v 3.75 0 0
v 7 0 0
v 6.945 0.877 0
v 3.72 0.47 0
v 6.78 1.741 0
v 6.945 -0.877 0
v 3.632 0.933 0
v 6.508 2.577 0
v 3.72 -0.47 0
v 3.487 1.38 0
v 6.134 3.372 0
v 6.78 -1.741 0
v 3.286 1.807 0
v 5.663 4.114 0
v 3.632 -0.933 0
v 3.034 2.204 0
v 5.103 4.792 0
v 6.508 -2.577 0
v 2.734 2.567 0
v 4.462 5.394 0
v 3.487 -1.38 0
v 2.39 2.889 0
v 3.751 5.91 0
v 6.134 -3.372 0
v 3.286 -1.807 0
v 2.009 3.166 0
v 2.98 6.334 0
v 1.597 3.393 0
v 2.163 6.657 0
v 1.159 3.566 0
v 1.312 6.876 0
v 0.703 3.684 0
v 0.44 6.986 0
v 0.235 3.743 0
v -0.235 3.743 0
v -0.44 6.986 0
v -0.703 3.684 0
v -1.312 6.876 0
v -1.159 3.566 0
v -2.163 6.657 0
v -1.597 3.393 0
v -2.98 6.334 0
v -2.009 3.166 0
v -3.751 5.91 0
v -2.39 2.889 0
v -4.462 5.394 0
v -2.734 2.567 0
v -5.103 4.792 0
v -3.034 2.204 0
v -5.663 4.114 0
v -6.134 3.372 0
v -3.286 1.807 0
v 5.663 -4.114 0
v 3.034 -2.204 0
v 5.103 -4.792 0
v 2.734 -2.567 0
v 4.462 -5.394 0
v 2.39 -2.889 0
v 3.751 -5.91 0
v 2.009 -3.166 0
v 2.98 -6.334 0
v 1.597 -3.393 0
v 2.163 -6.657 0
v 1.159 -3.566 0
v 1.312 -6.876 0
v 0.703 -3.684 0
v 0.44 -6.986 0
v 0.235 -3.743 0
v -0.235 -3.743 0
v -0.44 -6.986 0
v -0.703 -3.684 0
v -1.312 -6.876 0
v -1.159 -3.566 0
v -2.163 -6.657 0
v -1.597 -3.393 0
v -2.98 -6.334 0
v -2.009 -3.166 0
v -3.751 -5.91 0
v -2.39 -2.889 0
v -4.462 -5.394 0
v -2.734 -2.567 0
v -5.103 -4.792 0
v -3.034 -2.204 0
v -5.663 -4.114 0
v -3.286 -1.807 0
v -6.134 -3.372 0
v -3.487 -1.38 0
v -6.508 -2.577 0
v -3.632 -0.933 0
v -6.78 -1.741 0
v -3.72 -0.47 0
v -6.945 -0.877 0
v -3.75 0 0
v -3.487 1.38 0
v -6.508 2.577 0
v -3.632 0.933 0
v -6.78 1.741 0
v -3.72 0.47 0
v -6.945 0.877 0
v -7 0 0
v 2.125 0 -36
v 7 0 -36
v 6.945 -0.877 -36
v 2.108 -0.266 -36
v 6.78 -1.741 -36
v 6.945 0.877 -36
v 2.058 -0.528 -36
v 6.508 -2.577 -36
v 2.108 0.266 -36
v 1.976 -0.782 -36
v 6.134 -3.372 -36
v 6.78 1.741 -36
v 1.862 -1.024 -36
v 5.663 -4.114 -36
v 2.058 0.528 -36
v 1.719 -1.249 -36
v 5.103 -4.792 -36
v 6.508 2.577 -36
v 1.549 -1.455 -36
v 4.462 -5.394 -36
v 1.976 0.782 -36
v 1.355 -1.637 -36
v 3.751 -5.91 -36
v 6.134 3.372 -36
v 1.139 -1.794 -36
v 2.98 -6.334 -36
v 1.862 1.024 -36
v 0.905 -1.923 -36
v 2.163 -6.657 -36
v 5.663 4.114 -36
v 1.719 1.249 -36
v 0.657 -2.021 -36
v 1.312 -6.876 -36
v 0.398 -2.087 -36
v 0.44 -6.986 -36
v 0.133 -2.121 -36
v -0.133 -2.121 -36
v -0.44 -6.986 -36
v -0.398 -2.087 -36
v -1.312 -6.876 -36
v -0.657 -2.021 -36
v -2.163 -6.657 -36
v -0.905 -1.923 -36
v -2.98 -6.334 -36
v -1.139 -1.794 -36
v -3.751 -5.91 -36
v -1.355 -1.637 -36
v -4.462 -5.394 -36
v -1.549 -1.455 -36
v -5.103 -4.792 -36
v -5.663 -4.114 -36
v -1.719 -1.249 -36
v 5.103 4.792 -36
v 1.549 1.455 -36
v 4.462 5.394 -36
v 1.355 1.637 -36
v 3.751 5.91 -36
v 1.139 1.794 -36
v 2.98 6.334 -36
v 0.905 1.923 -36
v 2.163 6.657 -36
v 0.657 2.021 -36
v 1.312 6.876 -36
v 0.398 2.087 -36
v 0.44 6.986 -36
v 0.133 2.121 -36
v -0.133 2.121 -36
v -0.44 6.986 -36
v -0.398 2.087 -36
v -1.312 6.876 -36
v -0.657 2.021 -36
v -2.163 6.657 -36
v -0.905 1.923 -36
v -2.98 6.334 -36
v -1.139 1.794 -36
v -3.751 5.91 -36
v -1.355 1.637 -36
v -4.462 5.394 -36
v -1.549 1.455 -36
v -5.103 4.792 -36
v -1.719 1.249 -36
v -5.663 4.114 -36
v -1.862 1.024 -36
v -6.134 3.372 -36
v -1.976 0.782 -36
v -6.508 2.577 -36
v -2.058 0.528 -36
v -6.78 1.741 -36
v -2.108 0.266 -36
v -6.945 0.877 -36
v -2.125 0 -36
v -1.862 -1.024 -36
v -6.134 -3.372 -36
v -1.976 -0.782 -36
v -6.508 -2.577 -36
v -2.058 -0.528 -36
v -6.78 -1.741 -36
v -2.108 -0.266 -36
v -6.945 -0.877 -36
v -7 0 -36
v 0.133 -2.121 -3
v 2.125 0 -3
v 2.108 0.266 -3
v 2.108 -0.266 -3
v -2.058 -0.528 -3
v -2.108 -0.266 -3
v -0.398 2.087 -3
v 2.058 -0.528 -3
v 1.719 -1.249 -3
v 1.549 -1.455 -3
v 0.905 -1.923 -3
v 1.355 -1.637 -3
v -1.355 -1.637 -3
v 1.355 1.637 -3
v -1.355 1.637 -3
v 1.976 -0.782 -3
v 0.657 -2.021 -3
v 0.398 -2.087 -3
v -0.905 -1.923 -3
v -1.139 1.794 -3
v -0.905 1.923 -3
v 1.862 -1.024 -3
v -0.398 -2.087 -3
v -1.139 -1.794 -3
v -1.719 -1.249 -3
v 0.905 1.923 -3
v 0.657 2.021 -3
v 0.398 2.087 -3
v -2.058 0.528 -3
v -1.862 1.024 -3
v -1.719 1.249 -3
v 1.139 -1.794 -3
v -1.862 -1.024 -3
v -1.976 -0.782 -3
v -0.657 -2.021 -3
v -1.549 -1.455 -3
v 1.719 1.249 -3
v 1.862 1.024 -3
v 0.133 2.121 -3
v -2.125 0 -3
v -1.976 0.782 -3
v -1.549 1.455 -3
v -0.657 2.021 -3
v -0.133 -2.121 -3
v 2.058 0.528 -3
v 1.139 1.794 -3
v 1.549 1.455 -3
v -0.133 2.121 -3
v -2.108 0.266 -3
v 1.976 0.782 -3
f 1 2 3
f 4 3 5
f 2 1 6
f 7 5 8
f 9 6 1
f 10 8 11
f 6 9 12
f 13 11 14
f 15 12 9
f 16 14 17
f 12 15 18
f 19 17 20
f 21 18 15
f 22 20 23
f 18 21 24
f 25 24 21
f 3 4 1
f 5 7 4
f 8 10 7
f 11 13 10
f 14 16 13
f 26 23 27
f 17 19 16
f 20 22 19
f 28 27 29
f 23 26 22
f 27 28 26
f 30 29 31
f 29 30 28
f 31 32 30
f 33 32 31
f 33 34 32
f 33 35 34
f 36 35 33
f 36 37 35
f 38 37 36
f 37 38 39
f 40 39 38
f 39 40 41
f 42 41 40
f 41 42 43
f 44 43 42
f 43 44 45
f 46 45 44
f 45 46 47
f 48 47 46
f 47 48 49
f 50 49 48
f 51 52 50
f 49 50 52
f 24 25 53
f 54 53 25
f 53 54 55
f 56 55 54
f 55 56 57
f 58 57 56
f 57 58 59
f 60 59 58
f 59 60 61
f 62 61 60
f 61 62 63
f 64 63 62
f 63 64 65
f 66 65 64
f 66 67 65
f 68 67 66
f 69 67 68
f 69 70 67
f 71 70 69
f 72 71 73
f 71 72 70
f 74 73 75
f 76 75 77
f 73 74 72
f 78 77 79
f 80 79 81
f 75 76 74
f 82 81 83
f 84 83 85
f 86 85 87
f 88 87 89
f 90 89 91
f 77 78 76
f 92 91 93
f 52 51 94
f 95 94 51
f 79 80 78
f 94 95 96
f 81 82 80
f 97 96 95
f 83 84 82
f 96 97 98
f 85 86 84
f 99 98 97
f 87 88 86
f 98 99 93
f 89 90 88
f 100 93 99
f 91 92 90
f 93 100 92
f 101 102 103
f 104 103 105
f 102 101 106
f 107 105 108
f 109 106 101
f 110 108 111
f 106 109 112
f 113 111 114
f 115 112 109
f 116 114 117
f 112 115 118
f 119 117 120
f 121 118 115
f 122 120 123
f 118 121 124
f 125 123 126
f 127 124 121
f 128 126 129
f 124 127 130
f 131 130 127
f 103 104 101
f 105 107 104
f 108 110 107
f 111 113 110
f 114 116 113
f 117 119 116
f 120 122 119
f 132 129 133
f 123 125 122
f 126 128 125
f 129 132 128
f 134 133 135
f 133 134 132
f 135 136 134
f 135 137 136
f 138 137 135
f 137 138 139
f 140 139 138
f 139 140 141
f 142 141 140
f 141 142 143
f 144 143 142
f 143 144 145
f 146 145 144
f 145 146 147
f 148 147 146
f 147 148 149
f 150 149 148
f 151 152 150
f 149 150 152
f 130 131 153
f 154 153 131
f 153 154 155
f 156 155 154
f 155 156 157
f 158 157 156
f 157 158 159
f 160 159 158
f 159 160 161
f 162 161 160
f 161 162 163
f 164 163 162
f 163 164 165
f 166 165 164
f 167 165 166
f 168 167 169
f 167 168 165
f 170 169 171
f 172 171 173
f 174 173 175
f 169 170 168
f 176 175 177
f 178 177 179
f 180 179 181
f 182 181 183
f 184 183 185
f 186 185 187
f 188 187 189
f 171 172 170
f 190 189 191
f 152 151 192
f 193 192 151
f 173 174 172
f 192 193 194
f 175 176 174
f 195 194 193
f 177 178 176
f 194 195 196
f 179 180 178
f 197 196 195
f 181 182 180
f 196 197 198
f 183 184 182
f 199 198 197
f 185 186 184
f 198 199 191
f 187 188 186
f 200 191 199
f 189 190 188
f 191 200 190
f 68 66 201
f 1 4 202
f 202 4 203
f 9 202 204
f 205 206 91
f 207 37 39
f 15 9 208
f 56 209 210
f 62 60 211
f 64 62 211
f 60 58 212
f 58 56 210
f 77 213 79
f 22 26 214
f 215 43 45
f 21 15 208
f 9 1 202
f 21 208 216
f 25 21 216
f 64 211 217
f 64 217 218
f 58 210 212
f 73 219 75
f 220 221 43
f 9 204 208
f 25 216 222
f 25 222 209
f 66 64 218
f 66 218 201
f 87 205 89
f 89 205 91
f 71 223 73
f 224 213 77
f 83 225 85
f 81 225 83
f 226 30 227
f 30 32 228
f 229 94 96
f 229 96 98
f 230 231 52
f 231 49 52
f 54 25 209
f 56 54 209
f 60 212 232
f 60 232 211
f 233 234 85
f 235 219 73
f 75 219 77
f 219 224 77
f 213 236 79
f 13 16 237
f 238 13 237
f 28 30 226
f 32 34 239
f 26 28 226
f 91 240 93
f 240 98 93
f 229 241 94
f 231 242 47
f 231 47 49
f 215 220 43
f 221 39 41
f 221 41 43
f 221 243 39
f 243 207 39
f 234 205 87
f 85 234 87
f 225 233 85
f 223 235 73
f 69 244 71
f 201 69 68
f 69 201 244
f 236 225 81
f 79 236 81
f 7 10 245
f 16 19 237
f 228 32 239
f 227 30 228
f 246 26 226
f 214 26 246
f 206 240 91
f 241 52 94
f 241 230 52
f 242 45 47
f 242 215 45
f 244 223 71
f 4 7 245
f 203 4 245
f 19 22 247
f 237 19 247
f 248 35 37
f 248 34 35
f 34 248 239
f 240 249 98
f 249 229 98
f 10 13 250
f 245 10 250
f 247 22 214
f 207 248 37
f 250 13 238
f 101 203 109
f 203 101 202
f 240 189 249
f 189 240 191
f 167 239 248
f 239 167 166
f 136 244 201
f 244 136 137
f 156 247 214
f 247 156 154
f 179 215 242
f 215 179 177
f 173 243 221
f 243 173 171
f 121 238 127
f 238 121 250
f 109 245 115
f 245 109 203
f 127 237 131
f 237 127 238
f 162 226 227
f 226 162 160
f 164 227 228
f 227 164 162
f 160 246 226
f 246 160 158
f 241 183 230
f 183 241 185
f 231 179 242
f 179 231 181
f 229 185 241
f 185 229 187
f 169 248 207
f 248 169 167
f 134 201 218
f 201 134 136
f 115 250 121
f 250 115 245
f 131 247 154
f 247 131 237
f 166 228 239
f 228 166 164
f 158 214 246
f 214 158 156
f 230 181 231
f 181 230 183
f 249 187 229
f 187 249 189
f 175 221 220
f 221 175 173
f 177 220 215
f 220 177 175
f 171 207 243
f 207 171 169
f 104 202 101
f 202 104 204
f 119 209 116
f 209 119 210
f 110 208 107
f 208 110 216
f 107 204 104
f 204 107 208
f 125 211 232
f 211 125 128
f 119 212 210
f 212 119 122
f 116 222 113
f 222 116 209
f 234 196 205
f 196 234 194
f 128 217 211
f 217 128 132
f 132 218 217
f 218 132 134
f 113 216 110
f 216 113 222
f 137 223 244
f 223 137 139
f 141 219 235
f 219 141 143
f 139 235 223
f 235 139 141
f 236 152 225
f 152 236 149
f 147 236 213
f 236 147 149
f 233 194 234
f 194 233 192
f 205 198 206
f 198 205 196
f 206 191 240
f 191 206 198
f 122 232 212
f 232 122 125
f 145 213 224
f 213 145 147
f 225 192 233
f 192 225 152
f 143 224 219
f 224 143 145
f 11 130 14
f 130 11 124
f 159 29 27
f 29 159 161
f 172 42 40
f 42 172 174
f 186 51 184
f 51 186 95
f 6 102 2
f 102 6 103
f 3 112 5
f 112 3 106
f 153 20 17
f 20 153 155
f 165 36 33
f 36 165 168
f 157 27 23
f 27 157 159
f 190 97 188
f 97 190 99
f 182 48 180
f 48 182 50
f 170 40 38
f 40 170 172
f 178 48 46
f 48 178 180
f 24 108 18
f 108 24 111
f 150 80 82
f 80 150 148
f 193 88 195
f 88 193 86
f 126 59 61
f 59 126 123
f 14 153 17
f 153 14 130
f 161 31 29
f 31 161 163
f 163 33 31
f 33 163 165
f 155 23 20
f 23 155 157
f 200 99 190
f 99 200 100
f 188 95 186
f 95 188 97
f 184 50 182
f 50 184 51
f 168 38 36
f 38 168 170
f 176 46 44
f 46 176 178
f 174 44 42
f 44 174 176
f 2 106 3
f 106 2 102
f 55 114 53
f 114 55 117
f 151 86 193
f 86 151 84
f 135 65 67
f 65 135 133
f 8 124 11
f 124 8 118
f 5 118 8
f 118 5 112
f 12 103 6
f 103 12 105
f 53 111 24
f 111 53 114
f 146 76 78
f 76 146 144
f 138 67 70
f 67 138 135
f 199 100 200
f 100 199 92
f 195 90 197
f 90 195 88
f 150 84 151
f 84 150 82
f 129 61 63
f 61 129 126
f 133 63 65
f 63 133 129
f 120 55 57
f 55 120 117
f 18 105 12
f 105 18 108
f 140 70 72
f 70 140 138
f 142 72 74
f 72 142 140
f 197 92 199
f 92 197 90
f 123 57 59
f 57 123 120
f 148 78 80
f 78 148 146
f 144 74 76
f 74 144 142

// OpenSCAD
$fn = 50;


difference() {
	union() {
		translate(v = [0, 0, -36.0000000000]) {
			cylinder(h = 36, r = 7.0000000000);
		}
	}
	union() {
		translate(v = [0, 0, 0]) {
			rotate(a = [0, 0, 0]) {
				difference() {
					union() {
						#translate(v = [0, 0, -36.0000000000]) {
							cylinder(h = 36, r = 2.0000000000);
						}
						#translate(v = [0, 0, -3]) {
							cylinder(h = 3, r1 = 2.1250000000, r2 = 3.7500000000);
						}
						#translate(v = [0, 0, -36.0000000000]) {
							cylinder(h = 36, r = 2.1250000000);
						}
						#translate(v = [0, 0, -36.0000000000]) {
							cylinder(h = 36, r = 2.0000000000);
						}
					}
					union();
				}
			}
		}
	}
}
